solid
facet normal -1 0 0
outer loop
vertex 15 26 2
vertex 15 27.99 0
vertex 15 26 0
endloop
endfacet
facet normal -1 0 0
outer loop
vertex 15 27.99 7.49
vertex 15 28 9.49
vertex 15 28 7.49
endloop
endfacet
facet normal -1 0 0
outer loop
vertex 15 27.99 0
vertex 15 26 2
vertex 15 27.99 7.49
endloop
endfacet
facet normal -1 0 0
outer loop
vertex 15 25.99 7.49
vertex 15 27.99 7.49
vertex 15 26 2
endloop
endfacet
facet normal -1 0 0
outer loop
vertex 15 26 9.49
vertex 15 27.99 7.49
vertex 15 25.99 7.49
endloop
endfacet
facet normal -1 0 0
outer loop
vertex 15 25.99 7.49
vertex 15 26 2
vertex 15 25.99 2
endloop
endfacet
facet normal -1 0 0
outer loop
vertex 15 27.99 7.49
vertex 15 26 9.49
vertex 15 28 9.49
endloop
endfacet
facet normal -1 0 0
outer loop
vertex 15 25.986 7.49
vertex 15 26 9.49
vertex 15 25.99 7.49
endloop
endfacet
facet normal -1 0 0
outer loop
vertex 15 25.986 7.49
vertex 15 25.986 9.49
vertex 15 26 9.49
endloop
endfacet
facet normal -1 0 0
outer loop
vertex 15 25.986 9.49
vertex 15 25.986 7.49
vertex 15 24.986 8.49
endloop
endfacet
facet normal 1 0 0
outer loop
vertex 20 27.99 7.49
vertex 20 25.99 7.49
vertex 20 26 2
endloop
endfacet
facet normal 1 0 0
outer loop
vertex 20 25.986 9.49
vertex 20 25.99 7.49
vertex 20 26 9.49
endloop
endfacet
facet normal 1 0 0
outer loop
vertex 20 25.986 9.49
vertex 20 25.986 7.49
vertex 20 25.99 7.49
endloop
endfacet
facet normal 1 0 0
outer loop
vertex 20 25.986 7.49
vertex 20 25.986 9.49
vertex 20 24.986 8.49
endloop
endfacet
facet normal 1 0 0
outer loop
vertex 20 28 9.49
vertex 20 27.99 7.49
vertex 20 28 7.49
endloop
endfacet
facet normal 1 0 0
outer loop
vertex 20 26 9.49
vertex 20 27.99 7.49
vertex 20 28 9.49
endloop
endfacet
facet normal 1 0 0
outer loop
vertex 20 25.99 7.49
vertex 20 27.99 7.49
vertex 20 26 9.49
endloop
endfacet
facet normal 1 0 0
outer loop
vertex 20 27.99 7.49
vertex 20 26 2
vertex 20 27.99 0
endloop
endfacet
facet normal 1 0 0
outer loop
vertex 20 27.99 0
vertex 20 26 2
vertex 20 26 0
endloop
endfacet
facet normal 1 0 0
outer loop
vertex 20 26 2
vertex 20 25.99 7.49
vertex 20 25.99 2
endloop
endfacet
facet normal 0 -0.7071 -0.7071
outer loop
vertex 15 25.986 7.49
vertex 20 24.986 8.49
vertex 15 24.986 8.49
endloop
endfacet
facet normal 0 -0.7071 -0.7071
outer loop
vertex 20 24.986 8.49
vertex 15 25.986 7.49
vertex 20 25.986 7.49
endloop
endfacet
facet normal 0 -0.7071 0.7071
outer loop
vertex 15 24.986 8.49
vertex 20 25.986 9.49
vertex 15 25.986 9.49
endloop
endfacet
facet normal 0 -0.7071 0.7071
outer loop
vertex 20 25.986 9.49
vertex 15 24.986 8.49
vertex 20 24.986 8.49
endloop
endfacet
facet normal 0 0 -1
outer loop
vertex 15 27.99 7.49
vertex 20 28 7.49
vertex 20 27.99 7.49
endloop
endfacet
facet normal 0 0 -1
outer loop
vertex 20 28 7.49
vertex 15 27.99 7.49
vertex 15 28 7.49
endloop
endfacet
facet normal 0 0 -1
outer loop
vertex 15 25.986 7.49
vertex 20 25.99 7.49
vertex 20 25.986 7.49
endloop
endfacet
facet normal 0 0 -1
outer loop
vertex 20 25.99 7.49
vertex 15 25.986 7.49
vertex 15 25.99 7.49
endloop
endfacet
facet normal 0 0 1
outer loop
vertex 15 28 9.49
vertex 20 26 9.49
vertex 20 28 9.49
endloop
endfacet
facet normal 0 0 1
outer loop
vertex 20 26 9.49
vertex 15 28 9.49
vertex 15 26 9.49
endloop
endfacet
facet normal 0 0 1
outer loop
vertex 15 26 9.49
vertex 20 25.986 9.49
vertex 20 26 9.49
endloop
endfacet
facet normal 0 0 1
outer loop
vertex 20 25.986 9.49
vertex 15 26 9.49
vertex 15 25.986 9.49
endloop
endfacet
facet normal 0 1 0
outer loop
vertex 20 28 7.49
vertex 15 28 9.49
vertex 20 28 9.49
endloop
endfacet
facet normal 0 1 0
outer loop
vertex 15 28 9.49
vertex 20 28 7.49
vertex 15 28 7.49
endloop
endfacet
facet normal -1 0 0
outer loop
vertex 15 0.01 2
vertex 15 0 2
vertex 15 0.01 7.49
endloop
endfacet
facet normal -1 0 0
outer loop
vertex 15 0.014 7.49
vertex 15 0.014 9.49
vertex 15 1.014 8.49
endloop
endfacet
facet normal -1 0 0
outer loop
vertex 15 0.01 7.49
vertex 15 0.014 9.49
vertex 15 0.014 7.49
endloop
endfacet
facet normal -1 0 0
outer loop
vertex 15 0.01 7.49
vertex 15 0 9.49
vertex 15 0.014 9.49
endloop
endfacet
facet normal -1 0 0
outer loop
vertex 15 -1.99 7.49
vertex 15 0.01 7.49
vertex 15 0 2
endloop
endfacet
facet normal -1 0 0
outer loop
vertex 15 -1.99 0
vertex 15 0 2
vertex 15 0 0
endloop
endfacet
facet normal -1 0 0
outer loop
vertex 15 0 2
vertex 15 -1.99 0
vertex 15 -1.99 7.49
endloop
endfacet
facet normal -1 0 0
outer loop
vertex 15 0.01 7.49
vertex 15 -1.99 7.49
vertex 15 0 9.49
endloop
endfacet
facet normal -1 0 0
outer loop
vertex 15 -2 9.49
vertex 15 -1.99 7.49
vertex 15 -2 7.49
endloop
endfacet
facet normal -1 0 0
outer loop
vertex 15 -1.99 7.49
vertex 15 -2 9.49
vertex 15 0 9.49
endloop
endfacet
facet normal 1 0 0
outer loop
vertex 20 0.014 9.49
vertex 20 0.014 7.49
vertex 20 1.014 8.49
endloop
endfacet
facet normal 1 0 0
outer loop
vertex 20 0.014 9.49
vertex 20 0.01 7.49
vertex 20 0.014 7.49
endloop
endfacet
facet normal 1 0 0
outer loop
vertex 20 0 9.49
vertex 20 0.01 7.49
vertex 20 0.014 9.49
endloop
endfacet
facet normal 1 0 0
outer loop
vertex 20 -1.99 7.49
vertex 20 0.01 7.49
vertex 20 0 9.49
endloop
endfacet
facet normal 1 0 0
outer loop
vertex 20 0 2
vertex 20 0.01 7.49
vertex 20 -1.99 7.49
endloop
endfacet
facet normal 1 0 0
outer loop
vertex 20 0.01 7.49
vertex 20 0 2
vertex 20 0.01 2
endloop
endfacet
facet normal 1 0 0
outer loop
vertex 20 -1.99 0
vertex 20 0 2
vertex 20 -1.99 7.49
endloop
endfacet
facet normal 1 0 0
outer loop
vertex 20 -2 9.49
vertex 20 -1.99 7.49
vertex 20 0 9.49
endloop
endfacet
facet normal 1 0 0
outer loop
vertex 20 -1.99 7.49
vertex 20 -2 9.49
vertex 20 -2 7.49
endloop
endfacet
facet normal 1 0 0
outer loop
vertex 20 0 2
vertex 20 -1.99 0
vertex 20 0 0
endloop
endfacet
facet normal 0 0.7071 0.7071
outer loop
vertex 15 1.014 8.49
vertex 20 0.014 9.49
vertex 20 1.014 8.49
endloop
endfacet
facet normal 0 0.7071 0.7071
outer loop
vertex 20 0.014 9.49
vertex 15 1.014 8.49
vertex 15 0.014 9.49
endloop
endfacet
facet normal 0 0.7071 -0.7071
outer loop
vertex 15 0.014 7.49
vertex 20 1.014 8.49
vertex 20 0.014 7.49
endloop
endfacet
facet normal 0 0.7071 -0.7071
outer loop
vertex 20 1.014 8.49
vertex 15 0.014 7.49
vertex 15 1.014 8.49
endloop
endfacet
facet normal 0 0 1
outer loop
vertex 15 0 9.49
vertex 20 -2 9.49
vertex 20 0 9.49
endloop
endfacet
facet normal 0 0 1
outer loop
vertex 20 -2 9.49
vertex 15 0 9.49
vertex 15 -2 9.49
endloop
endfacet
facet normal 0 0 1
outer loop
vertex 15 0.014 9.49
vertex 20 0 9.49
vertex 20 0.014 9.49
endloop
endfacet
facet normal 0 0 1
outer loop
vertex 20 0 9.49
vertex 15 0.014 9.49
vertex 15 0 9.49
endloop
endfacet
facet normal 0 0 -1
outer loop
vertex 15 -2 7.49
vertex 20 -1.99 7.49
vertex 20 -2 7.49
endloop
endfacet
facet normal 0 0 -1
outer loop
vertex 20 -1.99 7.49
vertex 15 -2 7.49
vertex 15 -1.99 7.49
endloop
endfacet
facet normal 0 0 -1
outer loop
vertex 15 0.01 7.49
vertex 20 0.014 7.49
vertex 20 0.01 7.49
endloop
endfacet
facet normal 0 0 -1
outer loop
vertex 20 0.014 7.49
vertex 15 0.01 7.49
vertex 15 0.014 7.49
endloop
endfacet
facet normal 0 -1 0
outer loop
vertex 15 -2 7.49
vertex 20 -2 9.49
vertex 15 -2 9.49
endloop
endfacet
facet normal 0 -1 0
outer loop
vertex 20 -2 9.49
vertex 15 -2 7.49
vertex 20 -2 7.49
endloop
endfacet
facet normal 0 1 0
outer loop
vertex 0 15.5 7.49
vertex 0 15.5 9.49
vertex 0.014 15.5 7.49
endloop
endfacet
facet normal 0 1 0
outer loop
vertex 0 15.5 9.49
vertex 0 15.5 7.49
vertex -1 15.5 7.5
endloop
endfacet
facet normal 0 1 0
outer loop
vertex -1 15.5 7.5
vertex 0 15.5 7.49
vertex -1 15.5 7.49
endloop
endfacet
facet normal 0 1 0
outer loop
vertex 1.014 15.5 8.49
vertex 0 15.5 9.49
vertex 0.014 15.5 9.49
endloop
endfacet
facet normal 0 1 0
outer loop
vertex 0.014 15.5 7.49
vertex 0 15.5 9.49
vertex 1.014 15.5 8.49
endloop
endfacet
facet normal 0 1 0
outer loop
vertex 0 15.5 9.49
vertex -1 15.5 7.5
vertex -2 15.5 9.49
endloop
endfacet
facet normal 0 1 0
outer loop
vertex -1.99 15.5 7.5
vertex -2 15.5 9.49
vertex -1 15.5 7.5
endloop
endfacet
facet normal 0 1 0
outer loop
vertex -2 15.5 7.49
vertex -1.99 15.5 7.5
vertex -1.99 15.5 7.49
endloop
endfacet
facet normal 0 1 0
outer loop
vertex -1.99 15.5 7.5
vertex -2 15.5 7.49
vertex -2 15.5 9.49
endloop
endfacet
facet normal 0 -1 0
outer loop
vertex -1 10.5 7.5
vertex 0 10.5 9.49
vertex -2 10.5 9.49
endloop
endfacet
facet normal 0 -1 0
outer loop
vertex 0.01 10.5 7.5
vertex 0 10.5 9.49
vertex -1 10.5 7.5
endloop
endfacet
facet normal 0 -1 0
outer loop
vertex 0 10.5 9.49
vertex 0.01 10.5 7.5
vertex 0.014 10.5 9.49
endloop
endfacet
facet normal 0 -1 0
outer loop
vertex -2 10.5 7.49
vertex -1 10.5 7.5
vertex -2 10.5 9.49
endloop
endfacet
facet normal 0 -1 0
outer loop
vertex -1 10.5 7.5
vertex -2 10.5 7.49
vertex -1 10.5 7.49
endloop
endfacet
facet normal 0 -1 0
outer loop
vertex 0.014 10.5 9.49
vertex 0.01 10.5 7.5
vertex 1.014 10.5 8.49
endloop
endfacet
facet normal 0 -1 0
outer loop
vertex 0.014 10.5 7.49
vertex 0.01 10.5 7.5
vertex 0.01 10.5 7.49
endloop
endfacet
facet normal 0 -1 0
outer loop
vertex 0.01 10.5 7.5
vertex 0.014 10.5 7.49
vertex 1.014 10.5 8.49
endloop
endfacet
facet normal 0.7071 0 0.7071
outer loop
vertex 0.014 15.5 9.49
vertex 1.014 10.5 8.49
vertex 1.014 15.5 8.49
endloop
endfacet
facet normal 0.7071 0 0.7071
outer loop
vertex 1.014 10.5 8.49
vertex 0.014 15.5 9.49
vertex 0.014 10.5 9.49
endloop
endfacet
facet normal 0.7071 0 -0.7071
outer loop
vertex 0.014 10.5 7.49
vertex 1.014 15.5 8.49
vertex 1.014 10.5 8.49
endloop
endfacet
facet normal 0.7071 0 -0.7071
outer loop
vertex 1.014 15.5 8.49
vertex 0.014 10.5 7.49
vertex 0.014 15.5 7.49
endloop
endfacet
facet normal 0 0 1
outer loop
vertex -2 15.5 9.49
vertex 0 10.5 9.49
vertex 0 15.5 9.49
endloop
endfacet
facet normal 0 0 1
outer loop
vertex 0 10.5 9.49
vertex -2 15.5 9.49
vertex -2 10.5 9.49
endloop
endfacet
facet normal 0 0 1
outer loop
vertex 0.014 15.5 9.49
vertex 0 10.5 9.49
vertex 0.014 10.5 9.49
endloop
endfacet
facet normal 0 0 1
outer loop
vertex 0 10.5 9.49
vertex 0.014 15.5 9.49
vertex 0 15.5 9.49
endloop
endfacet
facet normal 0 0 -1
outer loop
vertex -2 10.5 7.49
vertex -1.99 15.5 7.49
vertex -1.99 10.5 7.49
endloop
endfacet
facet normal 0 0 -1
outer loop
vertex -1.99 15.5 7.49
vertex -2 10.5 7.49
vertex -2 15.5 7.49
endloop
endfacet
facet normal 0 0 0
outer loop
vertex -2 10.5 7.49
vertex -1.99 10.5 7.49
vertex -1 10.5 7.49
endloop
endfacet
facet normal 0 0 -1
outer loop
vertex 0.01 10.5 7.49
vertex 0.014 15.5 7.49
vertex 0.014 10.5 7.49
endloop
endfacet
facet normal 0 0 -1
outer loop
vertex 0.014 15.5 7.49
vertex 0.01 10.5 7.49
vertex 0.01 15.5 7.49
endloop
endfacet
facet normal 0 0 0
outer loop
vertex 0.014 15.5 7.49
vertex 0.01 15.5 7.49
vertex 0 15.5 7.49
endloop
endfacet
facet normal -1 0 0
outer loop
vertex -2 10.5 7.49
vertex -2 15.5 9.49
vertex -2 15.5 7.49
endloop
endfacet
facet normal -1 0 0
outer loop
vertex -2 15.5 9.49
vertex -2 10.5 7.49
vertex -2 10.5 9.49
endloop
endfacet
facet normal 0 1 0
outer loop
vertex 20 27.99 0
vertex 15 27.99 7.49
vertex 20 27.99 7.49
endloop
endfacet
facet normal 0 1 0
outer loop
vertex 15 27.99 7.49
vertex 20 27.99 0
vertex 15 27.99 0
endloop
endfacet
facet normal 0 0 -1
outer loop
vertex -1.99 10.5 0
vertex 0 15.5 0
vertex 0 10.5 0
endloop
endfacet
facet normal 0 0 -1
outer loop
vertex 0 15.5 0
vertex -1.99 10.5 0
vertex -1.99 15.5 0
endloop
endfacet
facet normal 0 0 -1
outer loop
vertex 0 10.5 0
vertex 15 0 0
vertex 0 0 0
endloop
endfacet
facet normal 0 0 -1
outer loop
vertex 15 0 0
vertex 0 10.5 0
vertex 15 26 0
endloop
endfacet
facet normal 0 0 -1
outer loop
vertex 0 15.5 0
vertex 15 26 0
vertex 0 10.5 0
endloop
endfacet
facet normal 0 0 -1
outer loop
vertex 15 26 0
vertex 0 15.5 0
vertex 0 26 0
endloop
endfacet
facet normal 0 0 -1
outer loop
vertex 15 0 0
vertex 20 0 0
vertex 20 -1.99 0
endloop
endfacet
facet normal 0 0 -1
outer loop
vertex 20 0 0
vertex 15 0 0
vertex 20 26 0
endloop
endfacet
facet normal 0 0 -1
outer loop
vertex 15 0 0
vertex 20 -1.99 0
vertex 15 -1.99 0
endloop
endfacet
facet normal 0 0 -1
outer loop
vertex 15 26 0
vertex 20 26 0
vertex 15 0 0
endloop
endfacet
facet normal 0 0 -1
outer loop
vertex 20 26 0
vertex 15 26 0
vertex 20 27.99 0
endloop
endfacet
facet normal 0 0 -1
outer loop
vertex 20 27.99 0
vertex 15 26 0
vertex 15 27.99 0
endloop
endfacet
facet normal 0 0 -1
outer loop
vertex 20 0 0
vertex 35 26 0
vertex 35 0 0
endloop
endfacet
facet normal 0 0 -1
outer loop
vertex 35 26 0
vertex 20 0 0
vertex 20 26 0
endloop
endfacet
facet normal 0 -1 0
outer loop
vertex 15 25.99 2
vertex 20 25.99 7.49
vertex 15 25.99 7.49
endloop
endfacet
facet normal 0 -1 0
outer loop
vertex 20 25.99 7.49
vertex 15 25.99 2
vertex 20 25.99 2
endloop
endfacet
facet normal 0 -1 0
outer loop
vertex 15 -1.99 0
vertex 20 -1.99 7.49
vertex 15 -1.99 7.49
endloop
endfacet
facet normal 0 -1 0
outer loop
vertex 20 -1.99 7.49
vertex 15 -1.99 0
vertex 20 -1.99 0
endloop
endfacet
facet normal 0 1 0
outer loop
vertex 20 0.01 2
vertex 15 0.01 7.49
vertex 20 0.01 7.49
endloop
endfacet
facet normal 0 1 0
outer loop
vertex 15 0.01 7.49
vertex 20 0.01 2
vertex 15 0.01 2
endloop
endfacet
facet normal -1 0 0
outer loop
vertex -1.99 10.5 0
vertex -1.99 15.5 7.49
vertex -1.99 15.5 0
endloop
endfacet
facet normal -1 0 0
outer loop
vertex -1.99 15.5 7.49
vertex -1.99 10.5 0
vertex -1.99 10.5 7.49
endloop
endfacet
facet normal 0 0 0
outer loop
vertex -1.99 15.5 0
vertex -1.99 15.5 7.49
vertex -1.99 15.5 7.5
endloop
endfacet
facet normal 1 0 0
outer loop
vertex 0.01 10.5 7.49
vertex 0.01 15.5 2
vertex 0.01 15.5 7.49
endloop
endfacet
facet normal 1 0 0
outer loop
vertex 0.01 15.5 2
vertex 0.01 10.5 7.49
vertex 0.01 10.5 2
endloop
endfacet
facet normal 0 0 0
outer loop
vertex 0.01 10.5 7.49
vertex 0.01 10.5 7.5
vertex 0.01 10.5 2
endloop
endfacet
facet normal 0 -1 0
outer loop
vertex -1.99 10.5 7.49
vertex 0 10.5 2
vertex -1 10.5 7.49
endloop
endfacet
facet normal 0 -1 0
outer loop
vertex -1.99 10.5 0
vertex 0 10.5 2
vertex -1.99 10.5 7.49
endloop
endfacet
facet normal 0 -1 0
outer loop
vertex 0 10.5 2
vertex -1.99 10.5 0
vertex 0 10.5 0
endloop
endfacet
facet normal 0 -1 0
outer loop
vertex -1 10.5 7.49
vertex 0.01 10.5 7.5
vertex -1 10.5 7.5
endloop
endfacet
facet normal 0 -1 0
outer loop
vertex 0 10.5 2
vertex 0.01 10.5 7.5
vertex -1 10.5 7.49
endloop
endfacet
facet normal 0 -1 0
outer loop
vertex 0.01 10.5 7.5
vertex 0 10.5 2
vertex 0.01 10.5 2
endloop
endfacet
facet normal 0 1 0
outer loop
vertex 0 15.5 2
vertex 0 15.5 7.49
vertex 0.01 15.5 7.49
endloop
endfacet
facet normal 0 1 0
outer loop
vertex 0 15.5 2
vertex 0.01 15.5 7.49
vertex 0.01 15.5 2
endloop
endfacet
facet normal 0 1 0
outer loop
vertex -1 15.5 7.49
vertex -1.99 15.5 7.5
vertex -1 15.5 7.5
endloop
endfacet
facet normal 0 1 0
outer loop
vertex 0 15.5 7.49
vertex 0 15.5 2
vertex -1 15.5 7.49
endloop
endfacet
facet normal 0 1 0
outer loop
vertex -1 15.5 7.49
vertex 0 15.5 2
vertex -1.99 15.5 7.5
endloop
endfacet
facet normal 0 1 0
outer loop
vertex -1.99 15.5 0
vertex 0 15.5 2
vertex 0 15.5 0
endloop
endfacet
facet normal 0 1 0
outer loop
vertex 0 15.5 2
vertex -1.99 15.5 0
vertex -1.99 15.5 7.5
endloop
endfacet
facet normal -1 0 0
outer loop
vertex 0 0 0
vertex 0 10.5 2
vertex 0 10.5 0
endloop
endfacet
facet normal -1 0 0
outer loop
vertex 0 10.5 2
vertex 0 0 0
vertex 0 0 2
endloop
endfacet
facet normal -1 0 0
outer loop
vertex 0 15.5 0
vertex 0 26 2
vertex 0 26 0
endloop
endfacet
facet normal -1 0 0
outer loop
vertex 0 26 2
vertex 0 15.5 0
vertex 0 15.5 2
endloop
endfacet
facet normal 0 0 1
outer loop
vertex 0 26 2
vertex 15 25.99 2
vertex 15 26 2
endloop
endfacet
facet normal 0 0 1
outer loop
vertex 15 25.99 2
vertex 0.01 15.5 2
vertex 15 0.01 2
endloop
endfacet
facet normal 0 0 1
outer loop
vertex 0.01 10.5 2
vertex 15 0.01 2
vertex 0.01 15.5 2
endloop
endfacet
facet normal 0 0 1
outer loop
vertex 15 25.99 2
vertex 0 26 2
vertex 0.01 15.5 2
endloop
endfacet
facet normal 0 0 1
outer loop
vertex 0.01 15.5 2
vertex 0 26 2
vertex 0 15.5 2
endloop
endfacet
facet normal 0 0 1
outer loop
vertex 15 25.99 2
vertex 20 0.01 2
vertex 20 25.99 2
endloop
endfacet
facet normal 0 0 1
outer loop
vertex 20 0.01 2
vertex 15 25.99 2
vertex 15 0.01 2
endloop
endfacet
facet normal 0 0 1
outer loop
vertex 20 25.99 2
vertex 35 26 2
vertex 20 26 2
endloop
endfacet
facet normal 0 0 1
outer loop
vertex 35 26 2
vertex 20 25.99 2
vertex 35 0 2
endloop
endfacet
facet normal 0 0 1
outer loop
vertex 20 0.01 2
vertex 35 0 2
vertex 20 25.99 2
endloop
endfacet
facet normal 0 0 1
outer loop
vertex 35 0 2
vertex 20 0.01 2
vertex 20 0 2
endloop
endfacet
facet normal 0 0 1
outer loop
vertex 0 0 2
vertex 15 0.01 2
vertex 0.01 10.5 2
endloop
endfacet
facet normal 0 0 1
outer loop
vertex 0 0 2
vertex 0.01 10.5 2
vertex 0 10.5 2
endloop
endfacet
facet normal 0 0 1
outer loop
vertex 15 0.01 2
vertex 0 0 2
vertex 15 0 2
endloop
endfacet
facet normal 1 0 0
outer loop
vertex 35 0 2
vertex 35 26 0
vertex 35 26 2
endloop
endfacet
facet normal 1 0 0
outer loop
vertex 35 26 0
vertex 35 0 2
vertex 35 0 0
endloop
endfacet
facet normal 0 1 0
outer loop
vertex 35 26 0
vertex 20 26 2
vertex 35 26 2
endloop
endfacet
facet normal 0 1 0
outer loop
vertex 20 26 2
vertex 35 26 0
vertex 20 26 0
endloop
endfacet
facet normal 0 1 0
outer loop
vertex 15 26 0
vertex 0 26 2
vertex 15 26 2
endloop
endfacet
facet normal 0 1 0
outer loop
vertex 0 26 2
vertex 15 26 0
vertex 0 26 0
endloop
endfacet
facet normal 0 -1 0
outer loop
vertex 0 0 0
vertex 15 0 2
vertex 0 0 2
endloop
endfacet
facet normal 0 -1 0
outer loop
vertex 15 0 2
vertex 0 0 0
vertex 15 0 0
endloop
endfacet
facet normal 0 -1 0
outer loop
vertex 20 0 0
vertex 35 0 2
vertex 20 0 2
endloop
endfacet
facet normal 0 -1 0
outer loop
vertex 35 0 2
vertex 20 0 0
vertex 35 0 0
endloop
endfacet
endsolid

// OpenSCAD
// file: ../../lib/utils.scad
// Cube with rounded corners
// roundedCornerCube (50,50,4);
module roundedCornerCube(length, width, thickness){

        hull()
        {
            translate([length/2 - 2, width/2 - 2, 0]) cylinder(r=2, h=thickness, $fn=50, center=true);
            translate([length/2 - 2, -width/2 + 2, 0]) cylinder(r=2, h=thickness, $fn=50, center=true);
            translate([-length/2 + 2, width/2 - 2, 0]) cylinder(r=2, h=thickness, $fn=50, center=true);
            translate([-length/2 + 2, -width/2 + 2, 0]) cylinder(r=2, h=thickness, $fn=50, center=true);
        }

}

// Hollow cube with rounded corners. Will look like a frame with rounded con
// hollowRoundedCornerCube(50,70,4,2);
module hollowRoundedCornerCube(length, width, thickness, wallthickness)
{
    difference()
    {
        roundedCornerCube(length,width,thickness);
        roundedCornerCube(length-(wallthickness*2),width-(wallthickness*2),thickness);
    }
}

/*
module cylinderWithHandle(radius, thickness)
{
    rotate_extrude($fn=100)
        polygon( points = [[0,0], [radius,0], [radius,thickness] , [1,thickness], [2,thickness + 2] , [2,thickness + 6],[0,thickness + 6]] );
}
*/


// hollow cylinder
// hollowCylinder(radius, height, wallThickness)
// radius : radius to outter wall
// wallThickness : Thickness of wall
module hollowCylinder(radius, height, wallThickness)
{

    difference()
    {
        cylinder(h=height, r1=radius, r2=radius);
        cylinder(h=height, r1=radius - wallThickness, r2=radius - wallThickness);
    }
}


// hollow cylinders
// hollowCylinders(20, 10, 2, 2, 2)
// radius : radius to outer wall
// gapsSize : size of gap between each rings
// minradius : radius of the smallest ring
module hollowCylinders(radius, height, wallThickness, gapSize, minRadius)
{
    for (i = [radius : -(gapSize + wallThickness) : minRadius])
    {
       //echo (i);
       hollowCylinder(i,height,wallThickness);
    }
}

//
// b = bottom diameter
// t = top diameter
// h = height
module cone(b, t, h)
{
    cylinder(h=h, r1=b/2, r2=t/2, $fn=100);
}

// hollowCone(10,4,20, 2)
module hollowCone(bottomRadius, topRadius, height, wallThickness)
{
    difference()
    {
        cylinder(h=height, r1=bottomRadius, r2=topRadius, $fn=100);
        cylinder(h=height, r1=bottomRadius - wallThickness, r2=topRadius - wallThickness, $fn=100);
    }
}


// w = width between flat surface
// h = height
module hex (w=10, h=2){
  cylinder (r=w/2, h=h, center=true, $fn=6);
}

// hollowCone(10,4,20, 2)
module hollowHex(w=10, h=2, th=2)
{
    difference()
    {
        cylinder (r=w/2, h=h, center=true, $fn=6);
        cylinder (r=w/2 - th, h=h, center=true, $fn=6);
    }
}

// h : height
// ns : number of sides for base
// br : bottom radius
// tr : top radius
// ro : rotation in degree between bottom and top
// sl : slice layer. high value give smooth appearence
module twistExtrude(h=50,ns=6,br=20,tr=20,ro=100,sl=5)
{

	linear_extrude(height = h, twist  = ro,	slices = sl, scale  = tr/br)
		circle(r=br, $fn=ns);
}


// h : height
// ns : number of sides for base
// br : bottom radius
// tr : top radius
// ro : rotation in degree between bottom and top
// sl : slice layer. high value give smooth appearence
// wt : wall thickness
module hollowTwistExtrude(h=50,ns=6,br=20,tr=20,ro=100,sl=5,wt=1)
{
	difference()
	{
		linear_extrude(height = h, twist  = ro,	slices = sl, scale  = tr/br)
			circle(r=br, $fn=ns);

    translate([0,0,-.01])
		linear_extrude(height = h + .1, twist  = ro,	slices = sl, scale  = tr/br)
			circle(r=br - wt, $fn=ns);
	}
}


///////////////////////////////////////////////////////////////////////////////////////////////////////////////////

// honeycomb tiles
// honeycombSquare(100,100,4,10,2);
module honeycombTiles(length, width,thickness,rad,wallThickness)
{
    //thickness = 4;
    //rad = 10;
    //wallThickness = 2;
    //length = 100;
    //width = 100;

    for (w=[0: width/rad])
    {

        if (w % 2 == 0)
        {
            //cylinder($fn=6, r=rad, h=2);
            for (i = [0 : length/((rad*2) + (wallThickness*2))])
            {
              translate([rad*(3*i) + (wallThickness*2)*i,w*rad,0]) cylinder($fn=6, r=rad, h=thickness);

              //translate([rad*6 + (wallThickness*2)*2,0,0]) cylinder($fn=6, r=10, h=2);
              //translate([rad*9 + (wallThickness*2)*3,0,0]) cylinder($fn=6, r=10, h=2);
            }
        }

        if (w % 2 == 1)
        {
            for (j = [1 : 2 : (length/(rad + wallThickness))])
            {
              translate([(rad*1.5) *j + wallThickness *j , (w*rad) + wallThickness/2 ,0])  cylinder($fn=6, r=rad, h=thickness);
                //translate([(rad*1.5) *3 + wallThickness *3 ,10,0]) circle($fn=6, r=10);
                //translate([(rad*1.5) *5 + wallThickness *5 ,10,0]) circle($fn=6, r=10);
            }
        }
    }
}

// honeycomb square
// A square area with hollow honeycomb design
// honeycombSquare(100,100,4,10,2);
module honeycombSquare(length, width, thickness, cellRad,wallThickness)
{
    difference()
    {
        cube([length,width,thickness], center=true);
        translate([-length/2,-width/2, -thickness/2]) honeycombTiles(length,width,thickness,cellRad,wallThickness);
    }
}

//honeycomb(length, width, height, cell_size, wall_thickness);
//honeycomb(50, 50, 4, 10, 1);
//hollowRoundedCornerCube(50,70,4,2);

//hollowCylinder(10,20,2);

//hollowCylinders(20, 10, 2, 2, 2);
//cone(10,2,20);

// hollowCone(10,4,20, 2);

// honeycombSquare(40,40,2,5,2);


module edgeClamp(l=10)
{
   difference()
   {
    translate([0,.6,0]) rotate([45,0,0]) cube([l,2,2], center=true);
    translate([0,.6,1.5]) cube([l + .1,1,1], center=true);
    translate([0,.6,-1.5]) cube([l + .1,1,1], center=true);
   }
   cube([l,2,2], center=true);
}

cube([10,2,2], center=true);
translate([0,0,2]) edgeClamp();
// main file
use <../../lib/utils.scad>


/*
l = 35
w = 25.3
h = 5.5
actual height = 10
*/



// h = height
// wt = wall thickness
// sw = side stop width
// bl =  base inside length
// bw = base inside width
// bt = base thickness
module alarm_sideStops(h,wt, sw, bl,bw,bt)
{

  //when in top view
  //top
  translate([(bl-sw)/2,bw - .01,0]) cube([sw,wt,h]);
  translate([bl/2,bw + 1,h + 1 - .01]) rotate([180,0,0]) edgeClamp(l=sw);

  // right
  //translate([bl,(bw - 2)/2 + 4,0]) cube([wt,2,h]);
  //translate([bl + 1, bw/2 + 4,h + 1]) rotate([0,0,90]) edgeClamp(l=2);

  //bottom
  translate([(bl-sw)/2,-2 + .01,0]) cube([sw,wt,h]);
  translate([bl/2,-1,h + 1 - .01]) edgeClamp(l=sw);

  //left
  translate([-2 + .01,(bw - sw)/2,0]) cube([wt,sw,h]);
  translate([-1,bw/2,h + 1 - .01]) rotate([0,0,-90]) edgeClamp(l=sw);

}

// l =  length of alarm
// w = width of alarm
// h = height of alarm
// t = thickness of base
module alarm_holder(l=52, w=34.5 ,h=15.5 ,  t=2 )
{
  cube([l,w,t]);
  alarm_sideStops(h= (h + t),wt=2,sw=5 , bl=l , bw=w, bt=t);

  %alarm_sample();
}

module alarm_sample()
{
  translate([0,0,alarm_holder_t()]) cube([alarm_holder_l(),alarm_holder_w(),alarm_holder_ah()]);
}

//alarm_sample();
//alarm_holder(l=35, w=25.5 , h=5.5, t=2 );


function alarm_holder_l() = 35;
function alarm_holder_w() = 26;
function alarm_holder_h() = 5.5;
function alarm_holder_t() = 2;
function alarm_holder_ah() = 10;

//alarm_sample();
alarm_holder(l=alarm_holder_l(), w=alarm_holder_w() , h=alarm_holder_h(), t=alarm_holder_t());
